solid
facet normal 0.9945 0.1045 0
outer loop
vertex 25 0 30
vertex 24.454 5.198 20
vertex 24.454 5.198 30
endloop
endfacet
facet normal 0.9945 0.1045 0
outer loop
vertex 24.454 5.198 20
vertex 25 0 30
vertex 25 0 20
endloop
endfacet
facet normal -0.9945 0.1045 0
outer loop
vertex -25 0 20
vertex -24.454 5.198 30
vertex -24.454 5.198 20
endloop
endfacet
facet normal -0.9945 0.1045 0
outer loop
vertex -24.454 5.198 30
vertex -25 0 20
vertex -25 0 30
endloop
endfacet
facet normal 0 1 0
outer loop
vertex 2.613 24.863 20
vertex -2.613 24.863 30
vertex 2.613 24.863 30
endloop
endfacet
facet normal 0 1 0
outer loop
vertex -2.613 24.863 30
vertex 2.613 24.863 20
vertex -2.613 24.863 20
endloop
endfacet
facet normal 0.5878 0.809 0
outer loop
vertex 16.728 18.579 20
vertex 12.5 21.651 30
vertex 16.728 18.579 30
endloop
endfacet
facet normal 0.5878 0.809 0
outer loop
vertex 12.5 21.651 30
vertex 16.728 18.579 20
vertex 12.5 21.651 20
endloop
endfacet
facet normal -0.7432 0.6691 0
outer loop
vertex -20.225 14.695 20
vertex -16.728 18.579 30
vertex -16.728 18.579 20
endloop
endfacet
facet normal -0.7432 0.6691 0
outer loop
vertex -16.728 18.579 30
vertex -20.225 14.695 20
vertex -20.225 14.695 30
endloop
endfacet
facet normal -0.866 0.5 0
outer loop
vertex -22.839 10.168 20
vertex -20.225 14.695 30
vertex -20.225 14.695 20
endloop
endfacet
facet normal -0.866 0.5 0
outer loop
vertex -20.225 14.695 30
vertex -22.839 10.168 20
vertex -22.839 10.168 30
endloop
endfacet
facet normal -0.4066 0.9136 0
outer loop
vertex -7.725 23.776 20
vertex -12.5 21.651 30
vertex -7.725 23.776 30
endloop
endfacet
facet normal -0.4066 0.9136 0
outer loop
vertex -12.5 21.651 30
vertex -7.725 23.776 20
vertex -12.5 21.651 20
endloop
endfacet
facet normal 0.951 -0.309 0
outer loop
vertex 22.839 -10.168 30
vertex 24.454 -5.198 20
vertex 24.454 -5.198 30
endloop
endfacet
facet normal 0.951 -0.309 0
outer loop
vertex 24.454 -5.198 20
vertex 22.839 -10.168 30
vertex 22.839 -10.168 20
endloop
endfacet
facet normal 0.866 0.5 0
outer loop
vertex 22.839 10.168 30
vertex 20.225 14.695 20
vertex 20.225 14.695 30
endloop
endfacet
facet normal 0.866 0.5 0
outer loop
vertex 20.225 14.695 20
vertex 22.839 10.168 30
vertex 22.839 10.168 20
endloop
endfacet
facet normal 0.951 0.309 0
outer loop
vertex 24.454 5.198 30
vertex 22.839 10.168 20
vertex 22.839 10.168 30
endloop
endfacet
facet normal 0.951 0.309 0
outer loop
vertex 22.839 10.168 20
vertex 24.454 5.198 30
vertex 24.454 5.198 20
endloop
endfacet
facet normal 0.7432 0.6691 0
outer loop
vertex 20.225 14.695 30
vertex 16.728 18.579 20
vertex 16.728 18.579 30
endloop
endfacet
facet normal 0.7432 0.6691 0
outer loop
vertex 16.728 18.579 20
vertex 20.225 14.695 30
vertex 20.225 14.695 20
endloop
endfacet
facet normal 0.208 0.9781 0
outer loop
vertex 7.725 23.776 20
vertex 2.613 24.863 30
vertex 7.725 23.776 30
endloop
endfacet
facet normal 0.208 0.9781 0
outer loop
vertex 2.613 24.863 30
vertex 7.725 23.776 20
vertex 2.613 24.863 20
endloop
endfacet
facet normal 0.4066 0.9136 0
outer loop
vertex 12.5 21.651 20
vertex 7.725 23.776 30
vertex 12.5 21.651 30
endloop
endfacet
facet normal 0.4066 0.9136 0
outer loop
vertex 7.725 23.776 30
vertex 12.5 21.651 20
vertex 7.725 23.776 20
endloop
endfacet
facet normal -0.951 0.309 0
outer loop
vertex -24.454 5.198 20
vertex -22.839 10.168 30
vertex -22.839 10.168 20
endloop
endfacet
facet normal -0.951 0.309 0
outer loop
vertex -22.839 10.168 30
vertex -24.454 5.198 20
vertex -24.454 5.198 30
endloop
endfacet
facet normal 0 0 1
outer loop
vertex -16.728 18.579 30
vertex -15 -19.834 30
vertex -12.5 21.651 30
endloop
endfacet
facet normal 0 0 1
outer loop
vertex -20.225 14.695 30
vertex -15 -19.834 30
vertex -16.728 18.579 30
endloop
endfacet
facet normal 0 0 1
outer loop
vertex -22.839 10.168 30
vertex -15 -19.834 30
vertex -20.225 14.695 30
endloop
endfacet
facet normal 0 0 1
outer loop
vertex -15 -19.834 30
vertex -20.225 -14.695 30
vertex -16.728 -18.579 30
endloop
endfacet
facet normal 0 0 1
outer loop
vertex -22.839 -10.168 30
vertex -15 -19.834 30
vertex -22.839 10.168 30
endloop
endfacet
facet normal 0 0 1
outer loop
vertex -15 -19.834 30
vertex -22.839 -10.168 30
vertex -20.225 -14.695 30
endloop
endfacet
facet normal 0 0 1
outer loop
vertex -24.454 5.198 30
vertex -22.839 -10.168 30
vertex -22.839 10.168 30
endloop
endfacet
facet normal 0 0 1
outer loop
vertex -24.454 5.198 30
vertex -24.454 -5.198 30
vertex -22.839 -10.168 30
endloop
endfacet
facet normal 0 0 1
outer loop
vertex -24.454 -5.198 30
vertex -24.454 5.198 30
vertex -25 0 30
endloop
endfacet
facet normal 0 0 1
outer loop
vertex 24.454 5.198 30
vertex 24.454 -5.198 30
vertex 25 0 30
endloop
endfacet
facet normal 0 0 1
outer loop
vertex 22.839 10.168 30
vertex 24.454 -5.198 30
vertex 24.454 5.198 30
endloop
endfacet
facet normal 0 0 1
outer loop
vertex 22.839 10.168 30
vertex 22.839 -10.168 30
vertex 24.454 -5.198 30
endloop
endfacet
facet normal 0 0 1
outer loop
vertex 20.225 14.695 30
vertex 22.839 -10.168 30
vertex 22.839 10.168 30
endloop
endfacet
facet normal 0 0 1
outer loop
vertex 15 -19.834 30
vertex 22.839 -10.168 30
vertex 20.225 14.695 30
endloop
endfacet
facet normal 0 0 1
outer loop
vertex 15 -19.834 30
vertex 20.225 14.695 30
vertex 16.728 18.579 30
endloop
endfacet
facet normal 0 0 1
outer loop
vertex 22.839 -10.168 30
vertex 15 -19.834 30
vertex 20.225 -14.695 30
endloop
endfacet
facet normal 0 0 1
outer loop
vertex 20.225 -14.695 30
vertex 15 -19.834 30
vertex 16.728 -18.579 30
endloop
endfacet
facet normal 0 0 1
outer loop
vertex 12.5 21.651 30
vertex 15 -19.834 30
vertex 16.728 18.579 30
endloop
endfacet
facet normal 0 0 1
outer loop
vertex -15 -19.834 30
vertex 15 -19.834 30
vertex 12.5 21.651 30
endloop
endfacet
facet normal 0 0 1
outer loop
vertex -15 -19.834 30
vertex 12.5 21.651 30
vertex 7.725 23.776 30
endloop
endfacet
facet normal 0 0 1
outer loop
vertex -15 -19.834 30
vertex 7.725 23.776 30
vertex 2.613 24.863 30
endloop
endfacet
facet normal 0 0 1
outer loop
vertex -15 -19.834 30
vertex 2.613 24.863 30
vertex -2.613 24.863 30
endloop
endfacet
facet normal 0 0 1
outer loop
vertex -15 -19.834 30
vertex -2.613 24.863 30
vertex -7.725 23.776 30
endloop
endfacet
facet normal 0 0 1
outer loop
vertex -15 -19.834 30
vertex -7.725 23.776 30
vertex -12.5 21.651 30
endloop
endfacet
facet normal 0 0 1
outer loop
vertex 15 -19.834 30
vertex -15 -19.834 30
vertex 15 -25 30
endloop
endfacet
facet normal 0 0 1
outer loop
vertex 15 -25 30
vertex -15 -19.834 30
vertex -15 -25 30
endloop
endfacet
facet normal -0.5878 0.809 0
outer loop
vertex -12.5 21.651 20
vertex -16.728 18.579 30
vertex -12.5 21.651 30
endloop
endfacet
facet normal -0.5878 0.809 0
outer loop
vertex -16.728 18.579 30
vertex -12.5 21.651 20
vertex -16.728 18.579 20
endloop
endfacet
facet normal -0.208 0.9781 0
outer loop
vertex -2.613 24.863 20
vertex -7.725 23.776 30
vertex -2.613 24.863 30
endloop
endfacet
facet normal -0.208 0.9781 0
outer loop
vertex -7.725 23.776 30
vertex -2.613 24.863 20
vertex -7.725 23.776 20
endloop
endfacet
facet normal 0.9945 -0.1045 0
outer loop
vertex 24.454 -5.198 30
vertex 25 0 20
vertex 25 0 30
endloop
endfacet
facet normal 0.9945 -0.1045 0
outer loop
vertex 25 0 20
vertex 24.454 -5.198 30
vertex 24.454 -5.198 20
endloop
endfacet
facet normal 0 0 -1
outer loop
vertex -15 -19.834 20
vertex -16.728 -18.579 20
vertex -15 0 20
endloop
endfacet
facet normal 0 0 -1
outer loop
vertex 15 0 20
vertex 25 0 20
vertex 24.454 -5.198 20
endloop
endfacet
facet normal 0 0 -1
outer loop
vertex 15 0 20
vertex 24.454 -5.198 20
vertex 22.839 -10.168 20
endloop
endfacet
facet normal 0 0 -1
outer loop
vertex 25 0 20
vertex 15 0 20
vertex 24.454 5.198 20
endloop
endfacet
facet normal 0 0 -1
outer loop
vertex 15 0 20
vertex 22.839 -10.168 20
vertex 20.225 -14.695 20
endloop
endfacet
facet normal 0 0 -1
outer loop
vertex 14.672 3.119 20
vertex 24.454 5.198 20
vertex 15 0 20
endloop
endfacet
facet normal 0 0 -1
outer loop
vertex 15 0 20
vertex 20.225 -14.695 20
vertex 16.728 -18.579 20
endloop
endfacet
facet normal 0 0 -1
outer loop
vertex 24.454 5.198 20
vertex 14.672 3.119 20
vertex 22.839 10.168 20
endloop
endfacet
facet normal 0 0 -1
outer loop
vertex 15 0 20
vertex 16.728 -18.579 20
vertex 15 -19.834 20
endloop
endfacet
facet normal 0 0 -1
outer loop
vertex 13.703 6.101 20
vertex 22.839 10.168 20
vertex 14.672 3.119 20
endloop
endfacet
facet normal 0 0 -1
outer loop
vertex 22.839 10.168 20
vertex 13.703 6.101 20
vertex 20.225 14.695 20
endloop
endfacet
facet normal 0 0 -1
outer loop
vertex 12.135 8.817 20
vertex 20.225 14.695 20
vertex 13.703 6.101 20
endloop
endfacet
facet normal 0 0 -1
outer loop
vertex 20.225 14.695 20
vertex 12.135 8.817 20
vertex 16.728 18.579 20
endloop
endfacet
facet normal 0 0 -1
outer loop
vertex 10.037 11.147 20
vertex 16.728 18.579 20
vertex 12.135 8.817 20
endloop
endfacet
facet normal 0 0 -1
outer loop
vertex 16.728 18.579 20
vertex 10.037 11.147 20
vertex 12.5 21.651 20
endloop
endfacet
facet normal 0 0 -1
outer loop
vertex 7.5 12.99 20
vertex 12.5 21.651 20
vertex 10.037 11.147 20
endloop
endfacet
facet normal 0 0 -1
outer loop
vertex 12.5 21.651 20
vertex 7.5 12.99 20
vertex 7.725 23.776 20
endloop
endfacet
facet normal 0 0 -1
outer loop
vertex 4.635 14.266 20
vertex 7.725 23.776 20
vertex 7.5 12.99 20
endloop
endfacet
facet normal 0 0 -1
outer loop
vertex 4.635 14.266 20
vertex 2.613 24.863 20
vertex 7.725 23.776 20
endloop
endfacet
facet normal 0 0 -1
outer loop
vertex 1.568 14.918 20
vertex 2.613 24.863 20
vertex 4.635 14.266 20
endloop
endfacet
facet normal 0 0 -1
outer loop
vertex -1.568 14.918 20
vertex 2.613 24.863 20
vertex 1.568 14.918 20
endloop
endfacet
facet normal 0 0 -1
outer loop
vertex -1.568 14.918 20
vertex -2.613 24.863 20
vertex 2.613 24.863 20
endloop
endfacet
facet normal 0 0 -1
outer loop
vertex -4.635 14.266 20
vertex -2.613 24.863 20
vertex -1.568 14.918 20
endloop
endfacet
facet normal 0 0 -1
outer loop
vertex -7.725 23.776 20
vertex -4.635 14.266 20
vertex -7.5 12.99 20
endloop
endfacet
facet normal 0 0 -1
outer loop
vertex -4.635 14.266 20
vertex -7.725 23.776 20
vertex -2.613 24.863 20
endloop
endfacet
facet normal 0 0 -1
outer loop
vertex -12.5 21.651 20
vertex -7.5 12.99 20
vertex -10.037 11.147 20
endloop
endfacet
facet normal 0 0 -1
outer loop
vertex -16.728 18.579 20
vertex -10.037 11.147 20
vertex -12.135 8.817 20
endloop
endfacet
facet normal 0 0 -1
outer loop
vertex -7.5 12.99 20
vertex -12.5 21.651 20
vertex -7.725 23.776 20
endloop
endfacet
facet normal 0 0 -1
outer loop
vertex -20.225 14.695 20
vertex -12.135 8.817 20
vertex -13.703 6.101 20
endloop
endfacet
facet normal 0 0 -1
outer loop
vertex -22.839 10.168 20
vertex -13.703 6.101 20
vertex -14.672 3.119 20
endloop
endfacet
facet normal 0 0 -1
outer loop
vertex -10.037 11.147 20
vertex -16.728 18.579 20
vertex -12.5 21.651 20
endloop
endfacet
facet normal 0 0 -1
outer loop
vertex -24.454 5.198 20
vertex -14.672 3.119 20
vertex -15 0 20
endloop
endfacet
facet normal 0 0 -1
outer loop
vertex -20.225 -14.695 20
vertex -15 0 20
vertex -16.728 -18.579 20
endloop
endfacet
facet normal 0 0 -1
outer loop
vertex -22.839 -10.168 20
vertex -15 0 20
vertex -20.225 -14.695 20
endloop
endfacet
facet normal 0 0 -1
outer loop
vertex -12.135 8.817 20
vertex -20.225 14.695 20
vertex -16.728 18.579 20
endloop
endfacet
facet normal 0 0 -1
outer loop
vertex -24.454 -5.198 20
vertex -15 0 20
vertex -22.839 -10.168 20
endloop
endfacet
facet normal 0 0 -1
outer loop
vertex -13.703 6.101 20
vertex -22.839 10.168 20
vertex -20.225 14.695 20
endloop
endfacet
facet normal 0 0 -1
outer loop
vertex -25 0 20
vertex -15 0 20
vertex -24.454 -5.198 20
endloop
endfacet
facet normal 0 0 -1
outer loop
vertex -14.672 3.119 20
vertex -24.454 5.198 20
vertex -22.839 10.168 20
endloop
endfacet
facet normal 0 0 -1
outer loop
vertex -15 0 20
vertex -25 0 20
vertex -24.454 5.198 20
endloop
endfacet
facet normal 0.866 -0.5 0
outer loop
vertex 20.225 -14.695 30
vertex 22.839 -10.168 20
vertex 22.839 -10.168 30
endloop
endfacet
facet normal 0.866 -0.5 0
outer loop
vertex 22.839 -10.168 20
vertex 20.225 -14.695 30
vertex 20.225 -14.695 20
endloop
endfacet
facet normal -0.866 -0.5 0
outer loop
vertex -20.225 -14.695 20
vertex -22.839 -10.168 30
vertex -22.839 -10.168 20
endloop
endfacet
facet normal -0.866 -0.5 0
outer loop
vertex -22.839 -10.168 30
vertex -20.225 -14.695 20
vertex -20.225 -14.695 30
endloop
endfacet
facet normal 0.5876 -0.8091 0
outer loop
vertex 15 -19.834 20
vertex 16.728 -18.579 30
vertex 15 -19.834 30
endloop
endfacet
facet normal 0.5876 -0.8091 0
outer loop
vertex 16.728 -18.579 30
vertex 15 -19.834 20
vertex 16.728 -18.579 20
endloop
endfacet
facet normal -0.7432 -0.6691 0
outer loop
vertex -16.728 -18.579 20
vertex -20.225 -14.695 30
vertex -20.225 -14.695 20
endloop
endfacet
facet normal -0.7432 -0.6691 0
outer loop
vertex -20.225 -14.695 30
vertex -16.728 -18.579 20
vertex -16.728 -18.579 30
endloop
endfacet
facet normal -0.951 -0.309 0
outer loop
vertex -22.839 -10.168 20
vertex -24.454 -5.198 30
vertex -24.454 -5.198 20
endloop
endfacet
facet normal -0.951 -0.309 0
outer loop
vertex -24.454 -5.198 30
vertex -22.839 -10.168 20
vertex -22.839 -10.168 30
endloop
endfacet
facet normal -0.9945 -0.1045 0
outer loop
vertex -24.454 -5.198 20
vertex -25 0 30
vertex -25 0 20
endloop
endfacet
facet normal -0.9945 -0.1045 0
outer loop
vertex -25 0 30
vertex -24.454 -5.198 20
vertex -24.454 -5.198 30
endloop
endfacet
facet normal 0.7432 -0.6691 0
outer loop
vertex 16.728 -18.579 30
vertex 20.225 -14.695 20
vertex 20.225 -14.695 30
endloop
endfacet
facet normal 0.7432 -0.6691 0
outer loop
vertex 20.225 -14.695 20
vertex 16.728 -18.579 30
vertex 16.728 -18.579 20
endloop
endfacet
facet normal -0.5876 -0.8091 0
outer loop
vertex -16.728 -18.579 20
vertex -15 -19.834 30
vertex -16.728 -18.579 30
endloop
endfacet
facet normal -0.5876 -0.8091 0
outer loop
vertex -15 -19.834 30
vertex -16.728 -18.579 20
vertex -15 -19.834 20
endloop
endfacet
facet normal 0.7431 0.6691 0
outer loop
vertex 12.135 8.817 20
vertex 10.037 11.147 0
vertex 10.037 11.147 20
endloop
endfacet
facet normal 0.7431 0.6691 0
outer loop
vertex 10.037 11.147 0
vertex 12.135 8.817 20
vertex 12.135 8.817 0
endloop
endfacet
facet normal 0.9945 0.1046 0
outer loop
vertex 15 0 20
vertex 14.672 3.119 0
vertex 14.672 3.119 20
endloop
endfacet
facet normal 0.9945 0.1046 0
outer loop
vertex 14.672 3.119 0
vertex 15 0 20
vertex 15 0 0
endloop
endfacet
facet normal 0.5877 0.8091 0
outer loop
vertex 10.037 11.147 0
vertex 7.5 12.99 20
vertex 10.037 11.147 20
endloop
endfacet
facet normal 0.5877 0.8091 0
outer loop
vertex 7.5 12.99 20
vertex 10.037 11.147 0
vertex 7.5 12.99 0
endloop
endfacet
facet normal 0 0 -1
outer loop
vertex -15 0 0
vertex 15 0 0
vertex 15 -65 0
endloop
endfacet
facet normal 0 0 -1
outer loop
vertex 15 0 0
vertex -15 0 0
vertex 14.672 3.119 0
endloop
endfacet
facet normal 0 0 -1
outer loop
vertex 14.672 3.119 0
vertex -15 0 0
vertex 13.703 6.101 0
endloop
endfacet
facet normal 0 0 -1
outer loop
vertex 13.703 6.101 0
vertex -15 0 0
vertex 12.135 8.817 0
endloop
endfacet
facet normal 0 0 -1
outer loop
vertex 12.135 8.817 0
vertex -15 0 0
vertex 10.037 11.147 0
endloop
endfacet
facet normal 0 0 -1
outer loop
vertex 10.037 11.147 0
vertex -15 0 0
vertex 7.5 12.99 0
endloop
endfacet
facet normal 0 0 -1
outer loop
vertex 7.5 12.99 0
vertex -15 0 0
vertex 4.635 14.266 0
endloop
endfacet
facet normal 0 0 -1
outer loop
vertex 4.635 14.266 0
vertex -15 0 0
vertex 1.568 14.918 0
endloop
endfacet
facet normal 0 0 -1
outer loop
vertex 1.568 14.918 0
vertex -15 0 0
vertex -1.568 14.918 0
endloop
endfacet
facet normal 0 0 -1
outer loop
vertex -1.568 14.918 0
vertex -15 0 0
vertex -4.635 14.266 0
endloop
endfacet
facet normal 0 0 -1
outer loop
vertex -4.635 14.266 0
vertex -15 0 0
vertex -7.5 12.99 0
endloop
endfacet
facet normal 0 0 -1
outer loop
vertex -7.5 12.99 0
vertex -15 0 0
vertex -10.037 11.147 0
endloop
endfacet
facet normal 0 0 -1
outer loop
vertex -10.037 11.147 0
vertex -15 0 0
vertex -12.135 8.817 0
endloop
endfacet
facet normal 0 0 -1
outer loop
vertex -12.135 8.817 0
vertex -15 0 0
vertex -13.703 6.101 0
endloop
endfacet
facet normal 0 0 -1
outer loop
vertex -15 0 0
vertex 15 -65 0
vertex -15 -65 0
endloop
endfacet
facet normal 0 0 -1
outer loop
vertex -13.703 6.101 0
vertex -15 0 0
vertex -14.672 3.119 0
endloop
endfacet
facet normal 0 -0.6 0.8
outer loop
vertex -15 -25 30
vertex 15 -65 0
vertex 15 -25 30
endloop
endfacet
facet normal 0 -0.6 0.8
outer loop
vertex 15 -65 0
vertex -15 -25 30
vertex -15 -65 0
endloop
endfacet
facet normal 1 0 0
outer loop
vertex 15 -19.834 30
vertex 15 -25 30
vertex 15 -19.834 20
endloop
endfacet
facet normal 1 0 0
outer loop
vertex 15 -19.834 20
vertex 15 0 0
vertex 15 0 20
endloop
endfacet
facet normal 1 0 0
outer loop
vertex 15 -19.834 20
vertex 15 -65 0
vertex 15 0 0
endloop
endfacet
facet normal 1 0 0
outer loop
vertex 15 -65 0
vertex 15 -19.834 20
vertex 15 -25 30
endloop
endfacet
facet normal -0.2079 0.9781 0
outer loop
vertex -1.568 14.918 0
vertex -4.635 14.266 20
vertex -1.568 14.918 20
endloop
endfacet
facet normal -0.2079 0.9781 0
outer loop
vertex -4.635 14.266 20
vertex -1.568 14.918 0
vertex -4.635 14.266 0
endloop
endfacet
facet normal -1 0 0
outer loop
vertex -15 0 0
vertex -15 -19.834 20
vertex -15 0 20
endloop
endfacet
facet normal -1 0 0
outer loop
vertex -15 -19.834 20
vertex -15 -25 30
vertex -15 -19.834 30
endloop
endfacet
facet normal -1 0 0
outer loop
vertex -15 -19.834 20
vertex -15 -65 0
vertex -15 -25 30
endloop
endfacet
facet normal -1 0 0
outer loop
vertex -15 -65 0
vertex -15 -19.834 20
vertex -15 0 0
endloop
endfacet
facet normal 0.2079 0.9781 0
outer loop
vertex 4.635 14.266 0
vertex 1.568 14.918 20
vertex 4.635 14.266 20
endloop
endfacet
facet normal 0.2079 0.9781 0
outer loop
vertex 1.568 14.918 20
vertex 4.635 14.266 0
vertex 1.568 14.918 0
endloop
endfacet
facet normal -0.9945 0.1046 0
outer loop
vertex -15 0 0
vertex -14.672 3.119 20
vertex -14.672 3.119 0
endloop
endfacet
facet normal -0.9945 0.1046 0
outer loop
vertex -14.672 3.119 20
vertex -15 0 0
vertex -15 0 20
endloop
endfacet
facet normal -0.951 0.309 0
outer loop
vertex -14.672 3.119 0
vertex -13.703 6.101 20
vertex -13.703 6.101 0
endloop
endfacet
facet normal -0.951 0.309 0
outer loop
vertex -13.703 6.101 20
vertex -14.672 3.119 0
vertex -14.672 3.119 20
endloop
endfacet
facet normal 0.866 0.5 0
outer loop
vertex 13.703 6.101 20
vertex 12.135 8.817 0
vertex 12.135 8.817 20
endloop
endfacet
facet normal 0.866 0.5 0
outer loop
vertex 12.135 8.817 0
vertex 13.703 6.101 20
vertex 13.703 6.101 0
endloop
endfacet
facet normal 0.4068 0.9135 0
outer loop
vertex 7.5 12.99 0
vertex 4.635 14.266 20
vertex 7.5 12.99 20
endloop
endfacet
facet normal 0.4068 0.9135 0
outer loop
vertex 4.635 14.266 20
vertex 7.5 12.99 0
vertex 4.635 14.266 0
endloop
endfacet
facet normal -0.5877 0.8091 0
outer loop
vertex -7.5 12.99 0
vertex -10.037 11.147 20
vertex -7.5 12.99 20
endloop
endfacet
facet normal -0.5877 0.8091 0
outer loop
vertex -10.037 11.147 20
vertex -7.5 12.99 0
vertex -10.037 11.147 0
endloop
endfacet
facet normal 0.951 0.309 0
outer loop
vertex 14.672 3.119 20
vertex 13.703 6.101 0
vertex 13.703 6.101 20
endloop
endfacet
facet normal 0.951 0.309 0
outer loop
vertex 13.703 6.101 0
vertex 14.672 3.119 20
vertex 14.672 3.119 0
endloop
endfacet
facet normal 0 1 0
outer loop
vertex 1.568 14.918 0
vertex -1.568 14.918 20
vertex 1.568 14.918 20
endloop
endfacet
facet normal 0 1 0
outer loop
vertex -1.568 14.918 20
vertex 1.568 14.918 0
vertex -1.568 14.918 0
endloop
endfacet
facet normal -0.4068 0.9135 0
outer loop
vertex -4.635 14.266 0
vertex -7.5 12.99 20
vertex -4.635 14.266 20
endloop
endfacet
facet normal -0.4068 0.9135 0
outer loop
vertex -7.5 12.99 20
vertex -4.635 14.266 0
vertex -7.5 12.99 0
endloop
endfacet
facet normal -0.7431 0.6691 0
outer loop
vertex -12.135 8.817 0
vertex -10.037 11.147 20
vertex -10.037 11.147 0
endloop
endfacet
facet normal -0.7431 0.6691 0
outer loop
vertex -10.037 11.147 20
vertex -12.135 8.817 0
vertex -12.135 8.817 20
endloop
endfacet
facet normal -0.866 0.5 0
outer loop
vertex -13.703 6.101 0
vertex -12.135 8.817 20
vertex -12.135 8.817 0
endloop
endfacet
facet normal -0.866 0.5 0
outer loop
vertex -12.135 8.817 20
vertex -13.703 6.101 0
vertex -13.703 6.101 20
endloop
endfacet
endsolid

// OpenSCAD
// file: rightAnglePrism.scad
//
// Creates a right angle triangular prism with the parameters provided.
//
//    side view            front view
//
//           |             -----------
//          /|             |         |
//         / |             |         |
//        /  |             |         |
//       /   |  height     |         |
//      /    |             |         |
//     /     |             |         |
//    /      |             |         |
//   /--------             -----------
//   baseLength               width
//

module rightAnglePrism(width, baseLength, height){
   polyhedron(
           points=[[0,0,0], [width,0,0], [width,baseLength,0], [0,baseLength,0], [0,baseLength,height], [width,baseLength,height]],
           faces=[[0,1,2,3],[5,4,3,2],[0,4,5,1],[0,3,4],[5,2,1]]
           );
}


// examples
rightAnglePrism(10, 10, 10);
translate([11, 0, 0])
    rightAnglePrism(10, 20, 10);
translate([22, 0, 0])
    rightAnglePrism(10, 30, 10);
translate([33, 0, 0])
    rightAnglePrism(10, 40, 10);

translate([-11, 0, 0])
    rightAnglePrism(10, 10, 20);
translate([-22, 0, 0])
    rightAnglePrism(10, 10, 30);
translate([-33, 0, 0])
    rightAnglePrism(10, 10, 40);

translate([0, -11, 0])
    rightAnglePrism(10, 10, 10);
translate([0, -22, 0])
    rightAnglePrism(20, 10, 10);
translate([0, -33, 0])
    rightAnglePrism(30, 10, 10);
// main file
use <rightAnglePrism.scad>

// 
//        outerDiameter
//          --------
//          |      |\
//topHeight |      | \
//          |      |  \
//           --  --|   \
//            |  | |    \
//bottomHeight|  | |     \
//            |  | |      \
//    innerDiameter supportLength
//
module mountingPoint(outerDiameter, supportLength, innerDiameter, bottomHeight, topHeight) {
    translate([0, 0, bottomHeight])
        cylinder(h=topHeight, d=outerDiameter);
    hull() {
        cylinder(h=topHeight+bottomHeight, d=innerDiameter);
        translate([-innerDiameter/2, -outerDiameter/2-supportLength, 0]) {
            rightAnglePrism(innerDiameter, supportLength, topHeight+bottomHeight);
        }
    }
}

// example
mountingPoint(50, 40, 30, 20, 10);
